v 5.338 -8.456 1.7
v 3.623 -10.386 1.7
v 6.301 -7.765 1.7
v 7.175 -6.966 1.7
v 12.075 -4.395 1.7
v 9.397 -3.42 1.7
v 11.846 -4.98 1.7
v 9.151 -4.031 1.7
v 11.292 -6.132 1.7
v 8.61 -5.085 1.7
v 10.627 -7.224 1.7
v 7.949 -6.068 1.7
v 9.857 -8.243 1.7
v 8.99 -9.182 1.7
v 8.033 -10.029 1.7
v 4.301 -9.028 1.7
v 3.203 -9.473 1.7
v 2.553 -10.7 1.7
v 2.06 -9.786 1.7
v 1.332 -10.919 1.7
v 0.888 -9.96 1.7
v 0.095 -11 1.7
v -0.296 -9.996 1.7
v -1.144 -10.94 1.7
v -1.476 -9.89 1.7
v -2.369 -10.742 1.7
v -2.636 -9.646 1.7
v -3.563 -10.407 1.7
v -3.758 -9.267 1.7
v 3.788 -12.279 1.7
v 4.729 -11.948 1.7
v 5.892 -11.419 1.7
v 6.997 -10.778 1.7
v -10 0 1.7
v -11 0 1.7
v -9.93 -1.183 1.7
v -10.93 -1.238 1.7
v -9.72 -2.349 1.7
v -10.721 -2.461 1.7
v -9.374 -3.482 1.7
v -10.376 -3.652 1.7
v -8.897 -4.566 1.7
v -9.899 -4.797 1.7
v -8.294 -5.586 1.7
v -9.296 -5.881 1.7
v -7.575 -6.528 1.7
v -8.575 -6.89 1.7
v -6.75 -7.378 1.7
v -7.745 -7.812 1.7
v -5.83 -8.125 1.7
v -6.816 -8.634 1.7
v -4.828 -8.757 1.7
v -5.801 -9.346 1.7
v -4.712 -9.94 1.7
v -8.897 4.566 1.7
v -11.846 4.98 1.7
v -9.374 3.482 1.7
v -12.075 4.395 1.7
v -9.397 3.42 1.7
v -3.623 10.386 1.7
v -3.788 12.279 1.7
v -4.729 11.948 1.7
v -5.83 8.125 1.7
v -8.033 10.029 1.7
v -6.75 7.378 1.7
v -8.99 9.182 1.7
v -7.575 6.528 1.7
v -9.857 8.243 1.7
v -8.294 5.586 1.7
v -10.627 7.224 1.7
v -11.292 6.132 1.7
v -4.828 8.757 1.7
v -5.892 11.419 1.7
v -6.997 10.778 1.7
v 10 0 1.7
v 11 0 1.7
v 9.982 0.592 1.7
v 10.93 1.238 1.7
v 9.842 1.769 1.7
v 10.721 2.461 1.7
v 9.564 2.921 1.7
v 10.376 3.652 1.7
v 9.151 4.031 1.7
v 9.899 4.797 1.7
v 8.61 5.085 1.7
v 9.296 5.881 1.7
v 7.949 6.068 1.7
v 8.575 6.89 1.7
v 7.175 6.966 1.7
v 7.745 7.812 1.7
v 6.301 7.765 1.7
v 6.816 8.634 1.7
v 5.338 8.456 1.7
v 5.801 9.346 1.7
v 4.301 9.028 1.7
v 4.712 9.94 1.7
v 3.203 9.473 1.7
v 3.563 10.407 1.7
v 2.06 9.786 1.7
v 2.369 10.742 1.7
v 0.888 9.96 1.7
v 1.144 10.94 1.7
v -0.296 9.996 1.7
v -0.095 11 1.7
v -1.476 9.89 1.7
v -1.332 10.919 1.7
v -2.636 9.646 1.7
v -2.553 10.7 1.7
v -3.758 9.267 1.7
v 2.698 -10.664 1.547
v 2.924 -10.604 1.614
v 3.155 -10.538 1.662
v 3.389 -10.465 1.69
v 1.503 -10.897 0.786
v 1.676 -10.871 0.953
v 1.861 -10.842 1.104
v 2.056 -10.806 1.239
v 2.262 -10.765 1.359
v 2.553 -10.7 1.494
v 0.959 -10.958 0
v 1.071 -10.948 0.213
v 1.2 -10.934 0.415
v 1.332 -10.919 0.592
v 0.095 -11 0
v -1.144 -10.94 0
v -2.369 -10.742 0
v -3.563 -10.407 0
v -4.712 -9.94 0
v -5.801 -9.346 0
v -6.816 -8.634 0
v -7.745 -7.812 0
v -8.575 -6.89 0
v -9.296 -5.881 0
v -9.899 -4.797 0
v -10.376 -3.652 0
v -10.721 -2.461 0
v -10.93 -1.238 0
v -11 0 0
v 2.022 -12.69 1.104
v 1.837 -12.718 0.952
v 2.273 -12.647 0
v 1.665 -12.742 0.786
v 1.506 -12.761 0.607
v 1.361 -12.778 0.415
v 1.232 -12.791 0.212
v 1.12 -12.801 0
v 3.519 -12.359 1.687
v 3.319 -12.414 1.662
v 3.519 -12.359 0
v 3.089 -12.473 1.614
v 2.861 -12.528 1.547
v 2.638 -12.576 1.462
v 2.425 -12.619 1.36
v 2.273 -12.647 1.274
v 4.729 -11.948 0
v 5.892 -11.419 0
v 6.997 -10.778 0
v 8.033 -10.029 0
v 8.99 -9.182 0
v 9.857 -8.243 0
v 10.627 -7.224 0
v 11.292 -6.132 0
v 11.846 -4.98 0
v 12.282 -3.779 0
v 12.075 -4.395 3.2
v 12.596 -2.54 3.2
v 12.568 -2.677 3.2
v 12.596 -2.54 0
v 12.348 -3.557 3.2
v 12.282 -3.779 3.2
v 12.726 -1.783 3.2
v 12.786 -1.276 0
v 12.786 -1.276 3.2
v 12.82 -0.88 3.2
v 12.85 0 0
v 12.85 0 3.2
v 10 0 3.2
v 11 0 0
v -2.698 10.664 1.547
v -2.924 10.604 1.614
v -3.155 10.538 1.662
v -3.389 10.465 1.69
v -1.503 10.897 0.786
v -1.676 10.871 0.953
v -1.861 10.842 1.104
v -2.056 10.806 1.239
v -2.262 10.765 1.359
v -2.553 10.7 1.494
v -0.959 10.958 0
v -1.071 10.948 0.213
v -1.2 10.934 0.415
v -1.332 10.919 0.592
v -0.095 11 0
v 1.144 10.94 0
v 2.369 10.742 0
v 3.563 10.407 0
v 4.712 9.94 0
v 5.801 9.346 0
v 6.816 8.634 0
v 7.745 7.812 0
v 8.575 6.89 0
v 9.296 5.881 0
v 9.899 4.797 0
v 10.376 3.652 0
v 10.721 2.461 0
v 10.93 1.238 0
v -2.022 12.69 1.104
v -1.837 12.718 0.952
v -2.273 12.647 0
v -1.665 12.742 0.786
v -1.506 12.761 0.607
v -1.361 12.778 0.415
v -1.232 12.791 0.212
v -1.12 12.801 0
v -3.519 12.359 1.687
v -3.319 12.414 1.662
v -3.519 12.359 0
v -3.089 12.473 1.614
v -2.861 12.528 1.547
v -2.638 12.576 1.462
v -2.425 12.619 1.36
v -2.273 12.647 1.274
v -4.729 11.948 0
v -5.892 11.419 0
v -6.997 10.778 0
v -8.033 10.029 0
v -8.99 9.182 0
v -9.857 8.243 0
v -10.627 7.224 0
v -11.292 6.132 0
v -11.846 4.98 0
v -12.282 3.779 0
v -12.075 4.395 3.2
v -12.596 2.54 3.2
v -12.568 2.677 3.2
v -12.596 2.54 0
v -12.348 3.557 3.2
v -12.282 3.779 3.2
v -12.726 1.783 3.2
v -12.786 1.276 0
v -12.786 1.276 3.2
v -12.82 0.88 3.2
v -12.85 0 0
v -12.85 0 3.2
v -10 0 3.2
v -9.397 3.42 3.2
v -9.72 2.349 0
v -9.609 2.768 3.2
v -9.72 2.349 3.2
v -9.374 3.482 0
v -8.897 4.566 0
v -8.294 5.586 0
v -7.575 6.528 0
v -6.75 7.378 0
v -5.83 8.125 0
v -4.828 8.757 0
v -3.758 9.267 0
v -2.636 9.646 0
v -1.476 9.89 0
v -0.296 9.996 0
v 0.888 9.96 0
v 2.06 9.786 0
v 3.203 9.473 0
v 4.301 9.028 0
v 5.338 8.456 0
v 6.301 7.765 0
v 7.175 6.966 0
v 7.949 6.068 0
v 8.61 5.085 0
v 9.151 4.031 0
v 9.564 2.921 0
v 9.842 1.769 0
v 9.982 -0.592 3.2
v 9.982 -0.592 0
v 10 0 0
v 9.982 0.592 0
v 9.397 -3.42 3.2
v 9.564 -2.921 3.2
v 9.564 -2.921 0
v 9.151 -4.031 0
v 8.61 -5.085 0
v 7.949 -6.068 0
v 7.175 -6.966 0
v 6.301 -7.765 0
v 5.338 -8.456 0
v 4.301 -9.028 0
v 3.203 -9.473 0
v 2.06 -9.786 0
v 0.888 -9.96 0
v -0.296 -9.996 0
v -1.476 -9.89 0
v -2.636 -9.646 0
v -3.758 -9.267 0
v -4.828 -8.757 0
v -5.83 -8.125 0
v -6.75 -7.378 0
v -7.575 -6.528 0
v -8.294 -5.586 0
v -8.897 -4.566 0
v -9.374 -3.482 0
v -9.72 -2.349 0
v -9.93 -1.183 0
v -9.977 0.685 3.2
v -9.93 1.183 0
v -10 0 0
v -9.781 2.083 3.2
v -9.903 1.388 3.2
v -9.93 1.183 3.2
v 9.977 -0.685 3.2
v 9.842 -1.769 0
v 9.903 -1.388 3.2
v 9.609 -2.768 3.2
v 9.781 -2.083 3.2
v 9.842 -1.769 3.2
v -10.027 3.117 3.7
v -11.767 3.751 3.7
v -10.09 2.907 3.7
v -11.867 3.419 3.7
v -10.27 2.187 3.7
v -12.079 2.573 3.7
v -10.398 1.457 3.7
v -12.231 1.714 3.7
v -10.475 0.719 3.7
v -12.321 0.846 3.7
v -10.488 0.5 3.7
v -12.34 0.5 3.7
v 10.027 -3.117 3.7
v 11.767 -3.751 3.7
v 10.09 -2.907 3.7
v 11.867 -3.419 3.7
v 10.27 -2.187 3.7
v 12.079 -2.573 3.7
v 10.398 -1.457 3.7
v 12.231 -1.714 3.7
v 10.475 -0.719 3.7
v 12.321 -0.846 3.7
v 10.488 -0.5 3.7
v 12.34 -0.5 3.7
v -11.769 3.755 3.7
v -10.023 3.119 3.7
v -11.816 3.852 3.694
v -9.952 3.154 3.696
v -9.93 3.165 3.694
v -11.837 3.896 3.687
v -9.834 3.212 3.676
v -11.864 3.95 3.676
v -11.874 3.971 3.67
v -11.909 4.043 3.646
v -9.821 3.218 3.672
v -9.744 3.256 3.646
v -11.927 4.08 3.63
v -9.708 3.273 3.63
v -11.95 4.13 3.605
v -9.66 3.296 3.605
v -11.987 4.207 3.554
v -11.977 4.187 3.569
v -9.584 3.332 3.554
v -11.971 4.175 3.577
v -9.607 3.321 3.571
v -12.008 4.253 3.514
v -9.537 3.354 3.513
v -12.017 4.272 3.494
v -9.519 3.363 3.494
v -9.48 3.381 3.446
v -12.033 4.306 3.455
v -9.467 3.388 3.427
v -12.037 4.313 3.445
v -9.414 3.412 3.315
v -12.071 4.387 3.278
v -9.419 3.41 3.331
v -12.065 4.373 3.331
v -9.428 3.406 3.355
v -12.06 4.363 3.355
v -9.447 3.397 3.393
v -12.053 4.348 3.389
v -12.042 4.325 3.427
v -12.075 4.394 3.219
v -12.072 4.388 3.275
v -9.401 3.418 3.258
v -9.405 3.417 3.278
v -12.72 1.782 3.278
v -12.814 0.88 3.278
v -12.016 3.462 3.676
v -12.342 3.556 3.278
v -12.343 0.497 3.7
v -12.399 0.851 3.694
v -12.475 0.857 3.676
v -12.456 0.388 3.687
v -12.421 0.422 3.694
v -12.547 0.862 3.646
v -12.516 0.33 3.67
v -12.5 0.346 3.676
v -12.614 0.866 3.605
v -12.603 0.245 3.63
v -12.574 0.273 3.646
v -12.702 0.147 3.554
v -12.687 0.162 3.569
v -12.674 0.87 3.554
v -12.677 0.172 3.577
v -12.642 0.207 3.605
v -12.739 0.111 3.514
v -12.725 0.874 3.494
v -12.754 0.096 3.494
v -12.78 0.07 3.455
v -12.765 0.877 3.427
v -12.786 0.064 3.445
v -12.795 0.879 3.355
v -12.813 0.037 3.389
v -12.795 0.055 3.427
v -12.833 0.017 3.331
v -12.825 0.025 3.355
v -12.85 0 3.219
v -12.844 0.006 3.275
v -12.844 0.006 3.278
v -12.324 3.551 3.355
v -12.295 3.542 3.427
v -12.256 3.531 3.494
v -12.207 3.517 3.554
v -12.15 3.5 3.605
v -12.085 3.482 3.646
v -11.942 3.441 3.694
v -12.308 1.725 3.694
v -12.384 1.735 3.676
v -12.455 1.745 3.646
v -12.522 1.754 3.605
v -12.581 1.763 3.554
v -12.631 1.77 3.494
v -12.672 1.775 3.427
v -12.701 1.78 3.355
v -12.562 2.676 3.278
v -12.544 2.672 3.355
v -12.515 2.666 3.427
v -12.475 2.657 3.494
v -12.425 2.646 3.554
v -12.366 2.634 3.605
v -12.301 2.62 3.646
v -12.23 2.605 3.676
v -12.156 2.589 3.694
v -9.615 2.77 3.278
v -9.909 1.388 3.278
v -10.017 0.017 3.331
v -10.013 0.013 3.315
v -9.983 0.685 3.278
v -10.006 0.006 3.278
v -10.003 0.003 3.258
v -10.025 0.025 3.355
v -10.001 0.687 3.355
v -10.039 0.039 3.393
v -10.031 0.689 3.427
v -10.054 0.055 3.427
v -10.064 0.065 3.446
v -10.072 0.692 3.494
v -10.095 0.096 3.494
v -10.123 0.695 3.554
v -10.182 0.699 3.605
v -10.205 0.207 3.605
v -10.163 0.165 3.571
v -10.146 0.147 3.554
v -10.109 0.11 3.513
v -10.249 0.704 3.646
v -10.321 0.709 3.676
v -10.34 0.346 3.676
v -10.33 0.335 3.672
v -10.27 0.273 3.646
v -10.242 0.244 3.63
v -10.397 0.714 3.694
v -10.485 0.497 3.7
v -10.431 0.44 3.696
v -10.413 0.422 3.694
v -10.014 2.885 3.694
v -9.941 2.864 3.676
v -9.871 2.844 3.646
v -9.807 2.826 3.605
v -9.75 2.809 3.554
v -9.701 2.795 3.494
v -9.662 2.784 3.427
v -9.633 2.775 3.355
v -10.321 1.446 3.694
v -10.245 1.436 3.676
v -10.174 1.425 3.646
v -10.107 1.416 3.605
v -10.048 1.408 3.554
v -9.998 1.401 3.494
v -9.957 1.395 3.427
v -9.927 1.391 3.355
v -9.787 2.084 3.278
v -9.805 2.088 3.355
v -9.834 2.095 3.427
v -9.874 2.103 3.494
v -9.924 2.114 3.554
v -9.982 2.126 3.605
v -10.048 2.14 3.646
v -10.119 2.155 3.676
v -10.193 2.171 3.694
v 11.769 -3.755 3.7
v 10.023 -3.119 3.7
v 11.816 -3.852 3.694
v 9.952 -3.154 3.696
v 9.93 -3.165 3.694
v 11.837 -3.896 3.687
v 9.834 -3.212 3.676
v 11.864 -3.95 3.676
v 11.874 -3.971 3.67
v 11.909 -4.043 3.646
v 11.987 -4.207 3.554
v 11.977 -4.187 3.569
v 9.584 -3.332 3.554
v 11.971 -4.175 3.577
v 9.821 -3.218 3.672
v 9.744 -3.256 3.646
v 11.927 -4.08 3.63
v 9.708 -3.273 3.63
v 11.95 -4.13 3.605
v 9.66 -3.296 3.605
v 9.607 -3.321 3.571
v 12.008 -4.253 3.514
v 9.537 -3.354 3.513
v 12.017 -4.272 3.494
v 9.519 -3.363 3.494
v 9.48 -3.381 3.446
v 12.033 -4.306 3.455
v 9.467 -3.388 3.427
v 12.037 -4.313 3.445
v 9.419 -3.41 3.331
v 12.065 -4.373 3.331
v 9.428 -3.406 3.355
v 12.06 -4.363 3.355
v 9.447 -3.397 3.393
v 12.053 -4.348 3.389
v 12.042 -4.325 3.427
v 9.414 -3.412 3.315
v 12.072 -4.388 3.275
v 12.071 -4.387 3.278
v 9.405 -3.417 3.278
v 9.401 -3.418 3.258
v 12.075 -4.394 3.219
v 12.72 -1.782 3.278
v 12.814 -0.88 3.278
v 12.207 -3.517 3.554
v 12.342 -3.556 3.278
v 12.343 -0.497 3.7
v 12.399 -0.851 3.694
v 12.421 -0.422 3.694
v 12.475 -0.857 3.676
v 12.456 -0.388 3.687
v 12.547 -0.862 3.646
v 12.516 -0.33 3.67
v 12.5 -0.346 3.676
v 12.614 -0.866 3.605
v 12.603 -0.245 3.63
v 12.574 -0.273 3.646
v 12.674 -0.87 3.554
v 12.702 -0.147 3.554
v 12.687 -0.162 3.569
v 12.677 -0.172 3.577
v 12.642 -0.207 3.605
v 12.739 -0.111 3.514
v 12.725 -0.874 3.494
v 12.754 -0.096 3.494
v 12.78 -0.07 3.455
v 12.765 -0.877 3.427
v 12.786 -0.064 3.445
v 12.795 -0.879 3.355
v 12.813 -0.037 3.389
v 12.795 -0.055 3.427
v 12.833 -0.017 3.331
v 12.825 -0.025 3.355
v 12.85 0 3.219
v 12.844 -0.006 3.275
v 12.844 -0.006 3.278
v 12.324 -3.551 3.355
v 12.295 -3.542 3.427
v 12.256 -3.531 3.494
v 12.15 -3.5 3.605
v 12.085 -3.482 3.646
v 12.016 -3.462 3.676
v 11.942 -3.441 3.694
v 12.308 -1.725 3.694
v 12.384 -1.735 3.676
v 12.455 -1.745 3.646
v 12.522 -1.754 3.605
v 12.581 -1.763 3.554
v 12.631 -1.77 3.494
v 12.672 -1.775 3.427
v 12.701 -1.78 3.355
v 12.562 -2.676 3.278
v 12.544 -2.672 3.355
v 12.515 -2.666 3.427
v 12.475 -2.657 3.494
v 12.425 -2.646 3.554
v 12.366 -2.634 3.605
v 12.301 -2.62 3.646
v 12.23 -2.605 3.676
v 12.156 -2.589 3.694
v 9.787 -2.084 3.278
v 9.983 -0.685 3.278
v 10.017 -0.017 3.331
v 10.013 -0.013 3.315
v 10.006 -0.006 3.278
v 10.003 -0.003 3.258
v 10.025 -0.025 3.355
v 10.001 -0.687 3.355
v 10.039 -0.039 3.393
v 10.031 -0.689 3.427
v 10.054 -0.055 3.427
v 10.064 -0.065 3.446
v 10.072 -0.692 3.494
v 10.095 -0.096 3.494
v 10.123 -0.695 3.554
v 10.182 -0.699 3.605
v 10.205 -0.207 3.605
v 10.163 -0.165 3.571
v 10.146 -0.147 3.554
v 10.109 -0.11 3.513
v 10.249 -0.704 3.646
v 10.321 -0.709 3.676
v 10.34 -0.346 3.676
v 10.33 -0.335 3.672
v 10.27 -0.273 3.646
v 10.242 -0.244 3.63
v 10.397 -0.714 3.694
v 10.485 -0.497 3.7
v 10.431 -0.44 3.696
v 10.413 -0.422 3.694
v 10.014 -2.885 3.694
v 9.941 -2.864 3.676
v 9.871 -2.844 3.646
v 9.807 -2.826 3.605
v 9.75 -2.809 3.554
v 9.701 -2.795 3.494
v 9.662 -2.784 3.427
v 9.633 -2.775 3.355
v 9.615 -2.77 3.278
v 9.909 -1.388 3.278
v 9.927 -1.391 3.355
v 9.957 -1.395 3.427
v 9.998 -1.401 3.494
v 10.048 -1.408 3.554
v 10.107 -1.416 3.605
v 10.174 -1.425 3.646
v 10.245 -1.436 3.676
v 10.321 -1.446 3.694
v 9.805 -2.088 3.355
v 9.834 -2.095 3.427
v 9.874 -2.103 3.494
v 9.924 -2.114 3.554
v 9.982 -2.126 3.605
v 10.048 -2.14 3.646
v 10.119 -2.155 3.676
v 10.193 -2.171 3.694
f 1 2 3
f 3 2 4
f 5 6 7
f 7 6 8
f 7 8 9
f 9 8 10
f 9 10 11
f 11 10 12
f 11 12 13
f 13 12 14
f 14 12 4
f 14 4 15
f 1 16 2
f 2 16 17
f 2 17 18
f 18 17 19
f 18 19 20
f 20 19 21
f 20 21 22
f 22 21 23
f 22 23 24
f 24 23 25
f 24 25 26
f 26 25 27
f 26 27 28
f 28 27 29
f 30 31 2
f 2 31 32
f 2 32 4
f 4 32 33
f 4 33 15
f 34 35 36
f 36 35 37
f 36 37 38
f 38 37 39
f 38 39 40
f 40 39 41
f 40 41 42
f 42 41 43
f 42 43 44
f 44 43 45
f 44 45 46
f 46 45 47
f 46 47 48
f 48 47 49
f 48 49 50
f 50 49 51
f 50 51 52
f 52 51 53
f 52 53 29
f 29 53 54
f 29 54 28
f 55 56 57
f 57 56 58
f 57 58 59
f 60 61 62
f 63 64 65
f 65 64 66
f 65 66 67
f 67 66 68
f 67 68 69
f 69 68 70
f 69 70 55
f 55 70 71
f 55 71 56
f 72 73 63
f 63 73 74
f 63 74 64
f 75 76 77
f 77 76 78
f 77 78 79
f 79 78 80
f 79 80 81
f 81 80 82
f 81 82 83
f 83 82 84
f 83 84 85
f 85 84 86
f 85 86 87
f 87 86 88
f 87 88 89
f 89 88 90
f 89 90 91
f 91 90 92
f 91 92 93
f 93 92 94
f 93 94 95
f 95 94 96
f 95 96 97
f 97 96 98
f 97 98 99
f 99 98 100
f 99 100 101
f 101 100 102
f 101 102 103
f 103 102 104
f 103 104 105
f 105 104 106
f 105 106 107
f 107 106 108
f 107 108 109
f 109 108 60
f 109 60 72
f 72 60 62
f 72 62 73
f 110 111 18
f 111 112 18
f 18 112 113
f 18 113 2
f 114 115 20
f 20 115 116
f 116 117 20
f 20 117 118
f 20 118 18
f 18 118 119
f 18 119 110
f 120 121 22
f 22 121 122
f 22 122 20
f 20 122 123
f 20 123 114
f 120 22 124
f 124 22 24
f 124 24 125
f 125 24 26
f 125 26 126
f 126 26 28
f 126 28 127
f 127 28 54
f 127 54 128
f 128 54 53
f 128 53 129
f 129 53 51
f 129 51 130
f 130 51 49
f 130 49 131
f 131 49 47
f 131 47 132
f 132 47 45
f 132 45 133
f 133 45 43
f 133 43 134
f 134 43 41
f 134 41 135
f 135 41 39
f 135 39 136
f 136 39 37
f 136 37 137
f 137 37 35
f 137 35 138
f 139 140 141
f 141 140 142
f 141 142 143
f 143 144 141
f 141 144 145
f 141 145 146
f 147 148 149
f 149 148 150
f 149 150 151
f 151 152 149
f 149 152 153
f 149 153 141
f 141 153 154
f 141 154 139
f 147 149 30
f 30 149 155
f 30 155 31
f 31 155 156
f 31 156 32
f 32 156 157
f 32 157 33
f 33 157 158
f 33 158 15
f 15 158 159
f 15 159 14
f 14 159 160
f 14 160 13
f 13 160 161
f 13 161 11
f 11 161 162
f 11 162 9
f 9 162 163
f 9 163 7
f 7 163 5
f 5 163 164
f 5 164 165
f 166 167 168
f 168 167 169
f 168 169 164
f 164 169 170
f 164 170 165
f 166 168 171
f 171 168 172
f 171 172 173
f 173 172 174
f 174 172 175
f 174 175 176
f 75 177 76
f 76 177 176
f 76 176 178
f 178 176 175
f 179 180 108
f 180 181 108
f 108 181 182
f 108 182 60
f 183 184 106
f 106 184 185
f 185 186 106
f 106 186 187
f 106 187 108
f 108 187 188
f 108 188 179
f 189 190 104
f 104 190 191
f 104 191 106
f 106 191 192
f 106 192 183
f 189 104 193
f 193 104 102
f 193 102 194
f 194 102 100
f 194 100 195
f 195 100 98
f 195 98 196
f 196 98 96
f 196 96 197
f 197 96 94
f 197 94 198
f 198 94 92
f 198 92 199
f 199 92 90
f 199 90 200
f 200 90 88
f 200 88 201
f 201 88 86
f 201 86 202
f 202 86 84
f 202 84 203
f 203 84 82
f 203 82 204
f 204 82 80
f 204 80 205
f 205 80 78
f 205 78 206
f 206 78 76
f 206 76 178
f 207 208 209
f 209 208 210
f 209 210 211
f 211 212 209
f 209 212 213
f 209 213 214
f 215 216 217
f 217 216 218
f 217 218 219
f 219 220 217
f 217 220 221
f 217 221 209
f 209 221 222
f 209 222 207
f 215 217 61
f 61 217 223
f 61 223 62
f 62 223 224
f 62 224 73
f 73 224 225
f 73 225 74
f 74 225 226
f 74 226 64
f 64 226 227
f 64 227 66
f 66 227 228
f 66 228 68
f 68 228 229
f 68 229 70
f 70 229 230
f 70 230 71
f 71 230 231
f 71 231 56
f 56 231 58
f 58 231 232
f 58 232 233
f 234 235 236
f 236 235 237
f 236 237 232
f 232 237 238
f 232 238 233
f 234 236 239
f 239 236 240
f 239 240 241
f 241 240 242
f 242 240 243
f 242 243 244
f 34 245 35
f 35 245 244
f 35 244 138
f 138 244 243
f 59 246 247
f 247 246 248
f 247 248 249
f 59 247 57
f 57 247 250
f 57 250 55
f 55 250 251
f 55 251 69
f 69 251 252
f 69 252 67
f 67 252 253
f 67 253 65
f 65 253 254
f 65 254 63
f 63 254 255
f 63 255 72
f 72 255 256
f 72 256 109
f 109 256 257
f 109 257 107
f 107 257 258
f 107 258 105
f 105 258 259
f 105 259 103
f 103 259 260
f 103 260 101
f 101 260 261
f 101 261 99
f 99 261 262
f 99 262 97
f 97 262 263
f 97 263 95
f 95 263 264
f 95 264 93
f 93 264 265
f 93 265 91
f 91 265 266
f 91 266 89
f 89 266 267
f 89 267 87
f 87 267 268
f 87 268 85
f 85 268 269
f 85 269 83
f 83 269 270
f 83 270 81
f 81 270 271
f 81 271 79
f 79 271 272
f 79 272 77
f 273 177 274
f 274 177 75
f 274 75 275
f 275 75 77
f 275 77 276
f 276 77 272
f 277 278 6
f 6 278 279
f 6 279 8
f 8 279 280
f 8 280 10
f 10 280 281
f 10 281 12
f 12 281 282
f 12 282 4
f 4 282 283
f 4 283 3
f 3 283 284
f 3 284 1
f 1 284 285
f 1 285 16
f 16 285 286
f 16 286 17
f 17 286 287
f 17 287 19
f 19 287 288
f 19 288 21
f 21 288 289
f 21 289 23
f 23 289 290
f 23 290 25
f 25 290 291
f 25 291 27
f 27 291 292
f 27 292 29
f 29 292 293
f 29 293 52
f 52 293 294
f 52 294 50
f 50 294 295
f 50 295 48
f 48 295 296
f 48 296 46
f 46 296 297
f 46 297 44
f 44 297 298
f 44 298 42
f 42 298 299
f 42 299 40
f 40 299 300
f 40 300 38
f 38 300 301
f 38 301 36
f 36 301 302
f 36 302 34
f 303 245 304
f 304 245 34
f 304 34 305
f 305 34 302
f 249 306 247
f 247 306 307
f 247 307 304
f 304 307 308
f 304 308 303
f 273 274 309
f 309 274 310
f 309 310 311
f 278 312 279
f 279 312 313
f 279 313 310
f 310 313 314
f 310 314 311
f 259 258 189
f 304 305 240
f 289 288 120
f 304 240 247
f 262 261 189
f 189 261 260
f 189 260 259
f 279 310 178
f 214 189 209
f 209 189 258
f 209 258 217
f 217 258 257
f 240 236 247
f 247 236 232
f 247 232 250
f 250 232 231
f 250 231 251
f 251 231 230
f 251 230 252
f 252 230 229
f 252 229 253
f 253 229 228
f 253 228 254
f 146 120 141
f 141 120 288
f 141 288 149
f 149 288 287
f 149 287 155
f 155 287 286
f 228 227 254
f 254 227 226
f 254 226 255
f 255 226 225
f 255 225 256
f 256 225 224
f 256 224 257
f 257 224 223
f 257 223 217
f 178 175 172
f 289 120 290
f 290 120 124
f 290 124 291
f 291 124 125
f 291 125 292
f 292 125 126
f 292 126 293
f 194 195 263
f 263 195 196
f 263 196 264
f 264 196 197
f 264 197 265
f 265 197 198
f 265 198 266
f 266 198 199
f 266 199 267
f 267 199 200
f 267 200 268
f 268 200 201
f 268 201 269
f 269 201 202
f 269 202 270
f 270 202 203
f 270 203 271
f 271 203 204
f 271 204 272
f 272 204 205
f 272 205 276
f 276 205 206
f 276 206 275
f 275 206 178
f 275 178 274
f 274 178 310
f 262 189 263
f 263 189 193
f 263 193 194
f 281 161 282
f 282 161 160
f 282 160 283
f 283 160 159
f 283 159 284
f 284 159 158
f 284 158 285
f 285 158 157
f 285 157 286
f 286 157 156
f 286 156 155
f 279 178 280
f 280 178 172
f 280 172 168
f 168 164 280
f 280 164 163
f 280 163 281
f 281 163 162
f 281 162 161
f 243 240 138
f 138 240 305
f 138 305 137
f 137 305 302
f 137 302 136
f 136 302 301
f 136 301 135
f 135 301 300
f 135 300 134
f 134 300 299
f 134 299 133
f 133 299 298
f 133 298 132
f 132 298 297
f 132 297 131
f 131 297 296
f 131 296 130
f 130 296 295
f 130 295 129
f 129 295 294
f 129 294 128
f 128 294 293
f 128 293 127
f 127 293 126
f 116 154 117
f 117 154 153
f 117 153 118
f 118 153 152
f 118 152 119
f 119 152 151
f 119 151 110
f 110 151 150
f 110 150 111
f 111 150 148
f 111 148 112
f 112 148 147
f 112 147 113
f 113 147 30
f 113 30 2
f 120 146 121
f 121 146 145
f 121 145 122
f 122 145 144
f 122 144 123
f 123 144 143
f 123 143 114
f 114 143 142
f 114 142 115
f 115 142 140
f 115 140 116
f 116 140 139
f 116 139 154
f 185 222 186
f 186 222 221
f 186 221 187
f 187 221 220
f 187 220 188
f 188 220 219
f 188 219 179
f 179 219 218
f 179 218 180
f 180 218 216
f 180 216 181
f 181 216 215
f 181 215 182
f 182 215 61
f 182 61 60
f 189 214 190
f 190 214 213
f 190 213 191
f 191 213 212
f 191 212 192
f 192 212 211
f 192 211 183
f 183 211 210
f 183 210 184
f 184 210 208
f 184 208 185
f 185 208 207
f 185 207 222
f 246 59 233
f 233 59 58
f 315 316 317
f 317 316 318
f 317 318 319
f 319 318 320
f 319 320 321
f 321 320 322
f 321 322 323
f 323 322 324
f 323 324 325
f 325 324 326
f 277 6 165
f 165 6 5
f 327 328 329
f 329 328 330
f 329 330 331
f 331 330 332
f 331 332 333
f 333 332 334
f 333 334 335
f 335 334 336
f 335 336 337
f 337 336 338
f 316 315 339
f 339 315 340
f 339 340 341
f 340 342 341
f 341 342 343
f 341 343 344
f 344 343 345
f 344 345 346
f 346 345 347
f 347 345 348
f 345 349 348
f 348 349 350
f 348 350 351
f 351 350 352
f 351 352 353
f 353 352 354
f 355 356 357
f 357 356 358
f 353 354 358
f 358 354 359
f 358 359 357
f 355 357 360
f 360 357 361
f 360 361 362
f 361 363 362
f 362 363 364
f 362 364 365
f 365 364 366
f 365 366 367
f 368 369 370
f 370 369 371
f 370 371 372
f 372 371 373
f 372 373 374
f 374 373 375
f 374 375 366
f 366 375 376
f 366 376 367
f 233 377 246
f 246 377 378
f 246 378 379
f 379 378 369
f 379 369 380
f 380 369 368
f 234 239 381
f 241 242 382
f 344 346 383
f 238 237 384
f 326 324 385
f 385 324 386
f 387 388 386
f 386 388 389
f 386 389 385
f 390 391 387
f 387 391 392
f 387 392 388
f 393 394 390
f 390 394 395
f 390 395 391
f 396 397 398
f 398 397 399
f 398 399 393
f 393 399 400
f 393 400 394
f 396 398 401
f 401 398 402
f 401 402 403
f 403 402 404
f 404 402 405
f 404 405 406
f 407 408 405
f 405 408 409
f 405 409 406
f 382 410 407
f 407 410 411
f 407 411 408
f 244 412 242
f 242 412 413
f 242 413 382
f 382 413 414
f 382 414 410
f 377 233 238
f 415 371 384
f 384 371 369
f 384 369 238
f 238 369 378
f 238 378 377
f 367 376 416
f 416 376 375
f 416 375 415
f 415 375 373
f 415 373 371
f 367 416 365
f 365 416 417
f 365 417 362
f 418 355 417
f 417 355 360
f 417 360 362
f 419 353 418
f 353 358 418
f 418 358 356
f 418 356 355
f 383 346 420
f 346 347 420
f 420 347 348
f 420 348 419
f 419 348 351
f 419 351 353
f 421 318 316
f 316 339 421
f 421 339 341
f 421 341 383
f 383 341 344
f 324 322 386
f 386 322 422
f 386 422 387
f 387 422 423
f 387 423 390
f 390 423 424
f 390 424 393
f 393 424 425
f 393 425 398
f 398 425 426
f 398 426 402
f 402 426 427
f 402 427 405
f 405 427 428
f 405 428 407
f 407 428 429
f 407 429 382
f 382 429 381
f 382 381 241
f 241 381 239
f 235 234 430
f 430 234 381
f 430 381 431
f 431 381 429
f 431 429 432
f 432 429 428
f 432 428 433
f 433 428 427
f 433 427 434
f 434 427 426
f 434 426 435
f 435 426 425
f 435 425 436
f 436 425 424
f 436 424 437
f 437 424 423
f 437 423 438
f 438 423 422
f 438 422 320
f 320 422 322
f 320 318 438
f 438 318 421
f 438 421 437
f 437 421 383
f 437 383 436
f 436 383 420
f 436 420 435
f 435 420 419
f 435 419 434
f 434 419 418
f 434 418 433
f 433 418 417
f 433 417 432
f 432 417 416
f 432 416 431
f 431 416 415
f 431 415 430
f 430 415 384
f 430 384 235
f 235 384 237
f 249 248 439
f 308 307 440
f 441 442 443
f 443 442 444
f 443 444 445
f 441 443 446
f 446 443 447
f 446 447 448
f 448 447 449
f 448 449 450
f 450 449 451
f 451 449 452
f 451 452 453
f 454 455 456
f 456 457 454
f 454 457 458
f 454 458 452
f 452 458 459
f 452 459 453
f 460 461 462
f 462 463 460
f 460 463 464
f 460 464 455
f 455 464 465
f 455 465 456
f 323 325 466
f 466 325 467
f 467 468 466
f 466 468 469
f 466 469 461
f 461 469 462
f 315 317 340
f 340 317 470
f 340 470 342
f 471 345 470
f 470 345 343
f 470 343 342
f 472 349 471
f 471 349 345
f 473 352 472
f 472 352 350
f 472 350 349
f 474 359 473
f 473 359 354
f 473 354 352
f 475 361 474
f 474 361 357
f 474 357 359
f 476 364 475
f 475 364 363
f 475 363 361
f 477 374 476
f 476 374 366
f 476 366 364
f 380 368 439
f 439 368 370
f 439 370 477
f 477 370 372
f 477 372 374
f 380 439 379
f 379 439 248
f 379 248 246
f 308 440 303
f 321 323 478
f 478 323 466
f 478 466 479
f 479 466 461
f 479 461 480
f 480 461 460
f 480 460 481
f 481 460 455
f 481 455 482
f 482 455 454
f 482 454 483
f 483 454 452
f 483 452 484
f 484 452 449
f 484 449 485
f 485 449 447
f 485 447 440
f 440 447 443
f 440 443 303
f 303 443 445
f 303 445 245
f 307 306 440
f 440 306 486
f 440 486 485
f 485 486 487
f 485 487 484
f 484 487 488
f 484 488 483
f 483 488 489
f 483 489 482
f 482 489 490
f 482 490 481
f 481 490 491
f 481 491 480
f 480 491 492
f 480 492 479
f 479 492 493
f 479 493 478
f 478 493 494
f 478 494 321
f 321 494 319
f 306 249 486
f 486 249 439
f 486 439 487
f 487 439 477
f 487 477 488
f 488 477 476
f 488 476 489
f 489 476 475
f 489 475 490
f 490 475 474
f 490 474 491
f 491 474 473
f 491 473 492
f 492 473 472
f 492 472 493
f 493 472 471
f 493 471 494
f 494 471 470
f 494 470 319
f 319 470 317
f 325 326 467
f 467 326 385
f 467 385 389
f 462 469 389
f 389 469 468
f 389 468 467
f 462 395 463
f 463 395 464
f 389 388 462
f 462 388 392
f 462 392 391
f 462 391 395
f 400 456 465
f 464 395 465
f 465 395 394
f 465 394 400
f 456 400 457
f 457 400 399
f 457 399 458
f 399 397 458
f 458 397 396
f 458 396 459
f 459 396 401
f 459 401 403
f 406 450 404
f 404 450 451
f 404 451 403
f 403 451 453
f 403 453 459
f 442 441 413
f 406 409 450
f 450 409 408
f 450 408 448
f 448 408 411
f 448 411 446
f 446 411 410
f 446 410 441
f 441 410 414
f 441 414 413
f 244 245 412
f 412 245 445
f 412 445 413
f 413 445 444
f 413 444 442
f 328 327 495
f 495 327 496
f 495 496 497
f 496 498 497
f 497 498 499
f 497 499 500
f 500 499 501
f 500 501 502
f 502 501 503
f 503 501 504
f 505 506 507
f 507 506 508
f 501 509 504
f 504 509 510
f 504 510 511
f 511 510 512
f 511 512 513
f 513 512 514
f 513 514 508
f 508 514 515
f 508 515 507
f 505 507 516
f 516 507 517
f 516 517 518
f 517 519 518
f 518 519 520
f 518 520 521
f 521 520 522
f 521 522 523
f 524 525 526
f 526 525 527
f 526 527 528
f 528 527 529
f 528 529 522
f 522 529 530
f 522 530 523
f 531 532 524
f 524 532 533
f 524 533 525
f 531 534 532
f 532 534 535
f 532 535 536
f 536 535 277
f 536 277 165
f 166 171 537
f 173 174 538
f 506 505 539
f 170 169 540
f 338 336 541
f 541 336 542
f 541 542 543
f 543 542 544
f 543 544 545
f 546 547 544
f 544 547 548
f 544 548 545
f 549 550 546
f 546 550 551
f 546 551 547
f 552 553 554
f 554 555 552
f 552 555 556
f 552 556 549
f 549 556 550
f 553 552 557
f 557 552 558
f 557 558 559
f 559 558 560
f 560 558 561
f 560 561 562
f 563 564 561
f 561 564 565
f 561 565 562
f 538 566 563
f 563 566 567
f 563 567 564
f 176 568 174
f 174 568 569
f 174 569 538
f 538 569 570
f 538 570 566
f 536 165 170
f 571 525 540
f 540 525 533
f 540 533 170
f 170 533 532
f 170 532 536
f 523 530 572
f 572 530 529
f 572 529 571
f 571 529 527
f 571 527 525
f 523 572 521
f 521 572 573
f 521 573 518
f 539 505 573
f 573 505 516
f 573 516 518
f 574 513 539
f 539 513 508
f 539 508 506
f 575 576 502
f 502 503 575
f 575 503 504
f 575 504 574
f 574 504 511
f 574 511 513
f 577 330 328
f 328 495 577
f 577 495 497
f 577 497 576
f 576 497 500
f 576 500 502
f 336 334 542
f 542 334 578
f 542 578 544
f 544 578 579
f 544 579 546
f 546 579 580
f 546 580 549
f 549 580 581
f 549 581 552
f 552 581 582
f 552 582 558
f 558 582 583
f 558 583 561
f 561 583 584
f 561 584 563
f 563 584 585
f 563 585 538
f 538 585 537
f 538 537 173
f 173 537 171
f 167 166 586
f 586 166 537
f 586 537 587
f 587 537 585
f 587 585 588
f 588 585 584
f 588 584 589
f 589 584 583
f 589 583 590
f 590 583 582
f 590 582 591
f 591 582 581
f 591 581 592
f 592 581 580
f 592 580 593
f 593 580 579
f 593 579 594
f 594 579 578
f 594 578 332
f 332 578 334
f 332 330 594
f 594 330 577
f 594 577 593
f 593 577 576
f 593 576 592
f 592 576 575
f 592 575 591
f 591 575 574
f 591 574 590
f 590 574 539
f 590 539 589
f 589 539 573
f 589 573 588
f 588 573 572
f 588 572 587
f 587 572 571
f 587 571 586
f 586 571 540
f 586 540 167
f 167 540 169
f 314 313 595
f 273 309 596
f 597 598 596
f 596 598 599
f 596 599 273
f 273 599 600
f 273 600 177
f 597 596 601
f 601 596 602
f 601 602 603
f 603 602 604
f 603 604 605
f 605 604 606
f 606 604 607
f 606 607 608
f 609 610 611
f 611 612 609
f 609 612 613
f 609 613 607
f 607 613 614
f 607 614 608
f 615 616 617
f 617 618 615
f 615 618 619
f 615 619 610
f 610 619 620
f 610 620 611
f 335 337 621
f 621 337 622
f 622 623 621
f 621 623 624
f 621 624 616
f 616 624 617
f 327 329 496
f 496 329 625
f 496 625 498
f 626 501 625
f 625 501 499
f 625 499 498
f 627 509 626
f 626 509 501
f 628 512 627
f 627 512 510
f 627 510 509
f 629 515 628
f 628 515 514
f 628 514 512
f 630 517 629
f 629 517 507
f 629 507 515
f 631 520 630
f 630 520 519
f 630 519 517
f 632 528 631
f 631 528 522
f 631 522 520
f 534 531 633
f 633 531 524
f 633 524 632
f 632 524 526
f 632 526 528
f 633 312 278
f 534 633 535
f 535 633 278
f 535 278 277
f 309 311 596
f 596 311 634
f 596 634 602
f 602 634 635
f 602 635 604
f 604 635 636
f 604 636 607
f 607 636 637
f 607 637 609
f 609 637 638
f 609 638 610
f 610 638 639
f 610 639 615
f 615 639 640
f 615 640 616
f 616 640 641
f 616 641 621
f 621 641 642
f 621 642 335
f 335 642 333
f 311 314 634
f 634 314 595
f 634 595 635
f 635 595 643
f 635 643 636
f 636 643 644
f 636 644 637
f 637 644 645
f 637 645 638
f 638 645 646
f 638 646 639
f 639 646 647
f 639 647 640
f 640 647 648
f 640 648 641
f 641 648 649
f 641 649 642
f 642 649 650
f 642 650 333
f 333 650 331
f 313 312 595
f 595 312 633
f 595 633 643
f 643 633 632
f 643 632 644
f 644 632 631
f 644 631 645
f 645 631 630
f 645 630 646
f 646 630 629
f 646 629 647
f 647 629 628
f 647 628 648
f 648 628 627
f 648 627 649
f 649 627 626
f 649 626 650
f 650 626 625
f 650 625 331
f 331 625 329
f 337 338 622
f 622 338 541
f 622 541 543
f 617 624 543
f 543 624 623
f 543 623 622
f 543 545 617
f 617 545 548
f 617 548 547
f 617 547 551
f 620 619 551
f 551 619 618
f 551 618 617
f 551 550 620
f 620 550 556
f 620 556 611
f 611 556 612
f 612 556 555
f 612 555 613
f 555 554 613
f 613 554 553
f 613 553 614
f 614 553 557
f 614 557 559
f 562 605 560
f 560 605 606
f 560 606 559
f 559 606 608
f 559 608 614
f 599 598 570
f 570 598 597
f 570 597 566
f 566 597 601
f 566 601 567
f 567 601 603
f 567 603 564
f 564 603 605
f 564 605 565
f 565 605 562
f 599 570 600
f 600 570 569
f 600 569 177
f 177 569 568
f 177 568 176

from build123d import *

# Parameters (mm, degrees)
BOSS_EXTRUDE1_DEPTH = 1.7
FILLET1_R           = 3
BOSS_EXTRUDE2_DEPTH = 2
FILLET2_R           = 0.5


with BuildPart() as part:
    # Sketch1 → Boss-Extrude1 (new body)
    with BuildSketch(Plane.XY):
        with BuildLine():
            ThreePointArc((-11, 0), (-8.110050705, 7.431492284), (-0.95871317, 10.958141679))
            Line((-0.95871317, 10.958141679), (-1.119951294, 12.80110187))
            ThreePointArc((-1.119951294, 12.80110187), (-9.474013778, 8.681334168), (-12.85, 0))
            Line((-12.85, 0), (-11, 0))
        make_face()
        with BuildLine():
            ThreePointArc((-10, 0), (-7.372773368, 6.755902076), (-0.871557427, 9.961946981))
            Line((-0.871557427, 9.961946981), (-0.95871317, 10.958141679))
            ThreePointArc((-0.95871317, 10.958141679), (-8.110050705, 7.431492284), (-11, 0))
            Line((-11, 0), (-10, 0))
        make_face()
        with BuildLine():
            Line((-0.95871317, 10.958141679), (-0.871557427, 9.961946981))
            ThreePointArc((-0.871557427, 9.961946981), (6.755902076, 7.372773368), (10, 0))
            Line((10, 0), (11, 0))
            ThreePointArc((11, 0), (7.431492284, 8.110050705), (-0.95871317, 10.958141679))
        make_face()
        with BuildLine():
            ThreePointArc((10, 0), (7.372773368, -6.755902076), (0.871557427, -9.961946981))
            Line((0.871557427, -9.961946981), (0.95871317, -10.958141679))
            ThreePointArc((0.95871317, -10.958141679), (8.110050705, -7.431492284), (11, 0))
            Line((11, 0), (10, 0))
        make_face()
        with BuildLine():
            Line((0.95871317, -10.958141679), (0.871557427, -9.961946981))
            ThreePointArc((0.871557427, -9.961946981), (-6.755902076, -7.372773368), (-10, 0))
            Line((-10, 0), (-11, 0))
            ThreePointArc((-11, 0), (-7.431492284, -8.110050705), (0.95871317, -10.958141679))
        make_face()
        with BuildLine():
            ThreePointArc((11, 0), (8.110050705, -7.431492284), (0.95871317, -10.958141679))
            Line((0.95871317, -10.958141679), (1.119951294, -12.80110187))
            ThreePointArc((1.119951294, -12.80110187), (9.474013778, -8.681334168), (12.85, 0))
            Line((12.85, 0), (11, 0))
        make_face()
    extrude(amount=BOSS_EXTRUDE1_DEPTH)

    # Fillet1
    # the kernel refuses this fillet: 3 mm, written as the material it takes off along each edge
    with BuildSketch(Plane(origin=(0.369605462, -4.22460976, 1.7), x_dir=(0.9961946980917454, 0.08715574274765832, 0), z_dir=(0.08715574274765833, -0.9961946980917455, 0))) as fillet1_piece_1_section:
        with BuildLine():
            CenterArc((2.703701167, -3), FILLET1_R, 90, 64.320711381)
            Line((0, -1.7), (0, 0))
            Line((0, 0), (2.703701167, 0))
        make_face()
    fillet1_piece_1 = extrude(amount=15.368505835, mode=Mode.PRIVATE)
    fillet1_piece_1 = fillet1_piece_1 - Plane(origin=(0, 0, 1.24476439), x_dir=(1, 0, 0), z_dir=(0, 0, -1)) * Cylinder(11, 42, mode=Mode.PRIVATE)
    add(fillet1_piece_1, mode=Mode.SUBTRACT)
    with BuildSketch(Plane(origin=(-1.709059003, 19.53463379, 1.7), x_dir=(0, 0, -1), z_dir=(0.08715574274761673, -0.9961946980917492, 0))) as fillet1_piece_2_section:
        with BuildLine():
            CenterArc((3, -2.703701167), FILLET1_R, 115.679288619, 64.320711381)
            Line((0, -2.703701167), (0, 0))
            Line((0, 0), (1.7, 0))
        make_face()
    fillet1_piece_2 = extrude(amount=15.368505835, mode=Mode.PRIVATE)
    fillet1_piece_2 = fillet1_piece_2 - Plane(origin=(0, 0, 1.24476439), x_dir=(1, 0, 0), z_dir=(0, 0, -1)) * Cylinder(11, 42, mode=Mode.PRIVATE)
    add(fillet1_piece_2, mode=Mode.SUBTRACT)

    # Sketch2 → Boss-Extrude2 (add)
    with BuildSketch(Plane.XY.offset(1.7)):
        with BuildLine():
            Line((-12.85, 0), (-11, 0))
            Line((-11, 0), (-10, 0))
            ThreePointArc((-10, 0), (-9.84807753, 1.736481777), (-9.396926208, 3.420201433))
            Line((-9.396926208, 3.420201433), (-12.075050177, 4.394958842))
            ThreePointArc((-12.075050177, 4.394958842), (-12.654779626, 2.231379083), (-12.85, 0))
        make_face()
        with BuildLine():
            ThreePointArc((10, 0), (9.84807753, -1.736481777), (9.396926208, -3.420201433))
            Line((9.396926208, -3.420201433), (12.075050177, -4.394958842))
            ThreePointArc((12.075050177, -4.394958842), (12.654779626, -2.231379083), (12.85, 0))
            Line((12.85, 0), (11, 0))
            Line((11, 0), (10, 0))
        make_face()
    extrude(amount=BOSS_EXTRUDE2_DEPTH)

    # Fillet2
    fillet2_edges = [part.edges().sort_by_distance(p)[0] for p in [
        (-9.84807753, 1.736481777, 3.7),
        (-10.735988192, 3.907580137, 3.7),
        (-12.654779626, 2.231379083, 3.7),
        (-11.425, 0, 3.7),
        (9.84807753, -1.736481777, 3.7),
        (10.735988192, -3.907580137, 3.7),
        (12.654779626, -2.231379083, 3.7),
        (11.425, 0, 3.7),
    ]]
    fillet(fillet2_edges, radius=FILLET2_R)


solid = part.part
